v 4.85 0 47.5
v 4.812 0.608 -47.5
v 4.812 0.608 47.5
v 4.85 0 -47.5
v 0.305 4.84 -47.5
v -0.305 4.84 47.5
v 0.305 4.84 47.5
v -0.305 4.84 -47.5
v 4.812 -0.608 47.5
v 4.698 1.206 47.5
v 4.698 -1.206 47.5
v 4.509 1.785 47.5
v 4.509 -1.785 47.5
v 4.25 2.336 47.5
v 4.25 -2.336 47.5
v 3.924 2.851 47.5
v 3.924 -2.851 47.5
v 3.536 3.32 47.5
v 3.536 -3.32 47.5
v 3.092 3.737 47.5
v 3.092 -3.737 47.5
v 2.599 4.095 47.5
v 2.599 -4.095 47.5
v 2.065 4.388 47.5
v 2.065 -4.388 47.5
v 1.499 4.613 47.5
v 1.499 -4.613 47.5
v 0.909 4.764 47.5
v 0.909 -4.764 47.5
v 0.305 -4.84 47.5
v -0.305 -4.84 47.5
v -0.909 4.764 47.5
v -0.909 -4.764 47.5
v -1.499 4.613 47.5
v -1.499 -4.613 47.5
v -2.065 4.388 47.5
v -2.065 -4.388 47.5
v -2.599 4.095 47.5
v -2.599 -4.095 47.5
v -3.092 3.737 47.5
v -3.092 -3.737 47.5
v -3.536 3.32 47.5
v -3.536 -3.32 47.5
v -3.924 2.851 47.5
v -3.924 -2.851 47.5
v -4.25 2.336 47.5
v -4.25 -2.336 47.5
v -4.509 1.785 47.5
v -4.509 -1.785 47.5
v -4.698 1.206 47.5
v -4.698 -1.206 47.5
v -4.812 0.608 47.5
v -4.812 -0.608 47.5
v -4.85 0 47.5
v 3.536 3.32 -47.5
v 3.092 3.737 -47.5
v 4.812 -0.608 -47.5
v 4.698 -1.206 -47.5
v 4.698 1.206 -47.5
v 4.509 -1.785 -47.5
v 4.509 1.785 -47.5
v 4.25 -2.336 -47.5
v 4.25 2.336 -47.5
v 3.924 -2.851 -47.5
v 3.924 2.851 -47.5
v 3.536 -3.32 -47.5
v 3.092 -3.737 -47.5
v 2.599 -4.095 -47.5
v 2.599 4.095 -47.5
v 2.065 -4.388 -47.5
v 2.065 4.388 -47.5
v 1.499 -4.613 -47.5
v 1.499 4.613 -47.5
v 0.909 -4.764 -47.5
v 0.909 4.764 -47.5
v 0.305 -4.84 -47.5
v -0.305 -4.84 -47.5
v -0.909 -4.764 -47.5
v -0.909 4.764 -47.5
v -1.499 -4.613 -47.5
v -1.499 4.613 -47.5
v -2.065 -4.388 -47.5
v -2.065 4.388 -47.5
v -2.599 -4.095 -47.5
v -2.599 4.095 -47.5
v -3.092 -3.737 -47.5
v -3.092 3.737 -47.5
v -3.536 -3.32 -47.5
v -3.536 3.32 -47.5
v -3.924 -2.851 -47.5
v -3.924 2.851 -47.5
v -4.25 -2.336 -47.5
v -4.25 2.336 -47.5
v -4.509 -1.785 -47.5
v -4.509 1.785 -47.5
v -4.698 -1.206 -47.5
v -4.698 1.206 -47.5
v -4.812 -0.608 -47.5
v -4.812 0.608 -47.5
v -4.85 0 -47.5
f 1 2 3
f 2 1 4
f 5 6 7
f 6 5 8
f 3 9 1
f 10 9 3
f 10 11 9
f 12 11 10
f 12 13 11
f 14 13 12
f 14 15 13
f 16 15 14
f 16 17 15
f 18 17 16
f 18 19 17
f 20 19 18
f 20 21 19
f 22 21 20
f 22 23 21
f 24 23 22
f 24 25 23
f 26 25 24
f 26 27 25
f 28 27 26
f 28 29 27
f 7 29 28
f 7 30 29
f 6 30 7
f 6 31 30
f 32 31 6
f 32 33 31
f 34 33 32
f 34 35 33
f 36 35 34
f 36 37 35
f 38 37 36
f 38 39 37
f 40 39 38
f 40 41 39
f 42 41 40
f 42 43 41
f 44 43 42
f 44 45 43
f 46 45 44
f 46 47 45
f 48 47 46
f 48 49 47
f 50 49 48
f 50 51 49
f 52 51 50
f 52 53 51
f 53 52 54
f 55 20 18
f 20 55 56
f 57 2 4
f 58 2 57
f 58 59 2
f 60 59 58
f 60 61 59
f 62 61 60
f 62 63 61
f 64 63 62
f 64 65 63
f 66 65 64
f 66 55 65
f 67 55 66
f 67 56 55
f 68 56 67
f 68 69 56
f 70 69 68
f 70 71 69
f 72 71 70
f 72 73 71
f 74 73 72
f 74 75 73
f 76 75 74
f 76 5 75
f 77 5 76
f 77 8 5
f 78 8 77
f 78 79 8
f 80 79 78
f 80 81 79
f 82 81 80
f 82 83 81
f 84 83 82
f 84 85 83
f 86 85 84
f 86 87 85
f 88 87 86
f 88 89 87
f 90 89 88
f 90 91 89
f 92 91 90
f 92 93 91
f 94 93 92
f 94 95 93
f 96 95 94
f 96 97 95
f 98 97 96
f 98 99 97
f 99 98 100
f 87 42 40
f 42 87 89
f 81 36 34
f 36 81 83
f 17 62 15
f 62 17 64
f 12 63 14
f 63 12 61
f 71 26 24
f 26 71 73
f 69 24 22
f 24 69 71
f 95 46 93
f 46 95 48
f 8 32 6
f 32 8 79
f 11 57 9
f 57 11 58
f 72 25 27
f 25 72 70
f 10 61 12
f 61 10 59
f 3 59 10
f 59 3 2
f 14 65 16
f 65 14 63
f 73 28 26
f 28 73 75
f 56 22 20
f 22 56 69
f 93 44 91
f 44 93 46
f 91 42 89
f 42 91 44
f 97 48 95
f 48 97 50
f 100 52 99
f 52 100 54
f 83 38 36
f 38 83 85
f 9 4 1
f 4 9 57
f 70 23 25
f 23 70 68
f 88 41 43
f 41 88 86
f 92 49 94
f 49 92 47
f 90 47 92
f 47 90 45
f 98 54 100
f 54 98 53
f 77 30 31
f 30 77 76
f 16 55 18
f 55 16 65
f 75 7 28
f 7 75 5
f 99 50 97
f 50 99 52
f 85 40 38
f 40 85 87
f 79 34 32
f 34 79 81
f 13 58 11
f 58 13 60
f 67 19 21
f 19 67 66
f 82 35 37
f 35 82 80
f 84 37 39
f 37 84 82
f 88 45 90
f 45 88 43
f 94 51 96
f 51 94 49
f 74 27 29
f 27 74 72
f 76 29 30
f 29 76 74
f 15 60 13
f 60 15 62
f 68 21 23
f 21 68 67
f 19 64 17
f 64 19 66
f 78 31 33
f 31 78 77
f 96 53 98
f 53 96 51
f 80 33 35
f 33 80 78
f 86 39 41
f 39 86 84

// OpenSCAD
$fn = 50;


difference() {
	union() {
		translate(v = [0, 0, -47.5000000000]) {
			cylinder(h = 95, r = 4.8500000000);
		}
	}
	union() {
		translate(v = [0, 0, -100.0000000000]) {
			cylinder(h = 200, r = 0);
		}
	}
}
